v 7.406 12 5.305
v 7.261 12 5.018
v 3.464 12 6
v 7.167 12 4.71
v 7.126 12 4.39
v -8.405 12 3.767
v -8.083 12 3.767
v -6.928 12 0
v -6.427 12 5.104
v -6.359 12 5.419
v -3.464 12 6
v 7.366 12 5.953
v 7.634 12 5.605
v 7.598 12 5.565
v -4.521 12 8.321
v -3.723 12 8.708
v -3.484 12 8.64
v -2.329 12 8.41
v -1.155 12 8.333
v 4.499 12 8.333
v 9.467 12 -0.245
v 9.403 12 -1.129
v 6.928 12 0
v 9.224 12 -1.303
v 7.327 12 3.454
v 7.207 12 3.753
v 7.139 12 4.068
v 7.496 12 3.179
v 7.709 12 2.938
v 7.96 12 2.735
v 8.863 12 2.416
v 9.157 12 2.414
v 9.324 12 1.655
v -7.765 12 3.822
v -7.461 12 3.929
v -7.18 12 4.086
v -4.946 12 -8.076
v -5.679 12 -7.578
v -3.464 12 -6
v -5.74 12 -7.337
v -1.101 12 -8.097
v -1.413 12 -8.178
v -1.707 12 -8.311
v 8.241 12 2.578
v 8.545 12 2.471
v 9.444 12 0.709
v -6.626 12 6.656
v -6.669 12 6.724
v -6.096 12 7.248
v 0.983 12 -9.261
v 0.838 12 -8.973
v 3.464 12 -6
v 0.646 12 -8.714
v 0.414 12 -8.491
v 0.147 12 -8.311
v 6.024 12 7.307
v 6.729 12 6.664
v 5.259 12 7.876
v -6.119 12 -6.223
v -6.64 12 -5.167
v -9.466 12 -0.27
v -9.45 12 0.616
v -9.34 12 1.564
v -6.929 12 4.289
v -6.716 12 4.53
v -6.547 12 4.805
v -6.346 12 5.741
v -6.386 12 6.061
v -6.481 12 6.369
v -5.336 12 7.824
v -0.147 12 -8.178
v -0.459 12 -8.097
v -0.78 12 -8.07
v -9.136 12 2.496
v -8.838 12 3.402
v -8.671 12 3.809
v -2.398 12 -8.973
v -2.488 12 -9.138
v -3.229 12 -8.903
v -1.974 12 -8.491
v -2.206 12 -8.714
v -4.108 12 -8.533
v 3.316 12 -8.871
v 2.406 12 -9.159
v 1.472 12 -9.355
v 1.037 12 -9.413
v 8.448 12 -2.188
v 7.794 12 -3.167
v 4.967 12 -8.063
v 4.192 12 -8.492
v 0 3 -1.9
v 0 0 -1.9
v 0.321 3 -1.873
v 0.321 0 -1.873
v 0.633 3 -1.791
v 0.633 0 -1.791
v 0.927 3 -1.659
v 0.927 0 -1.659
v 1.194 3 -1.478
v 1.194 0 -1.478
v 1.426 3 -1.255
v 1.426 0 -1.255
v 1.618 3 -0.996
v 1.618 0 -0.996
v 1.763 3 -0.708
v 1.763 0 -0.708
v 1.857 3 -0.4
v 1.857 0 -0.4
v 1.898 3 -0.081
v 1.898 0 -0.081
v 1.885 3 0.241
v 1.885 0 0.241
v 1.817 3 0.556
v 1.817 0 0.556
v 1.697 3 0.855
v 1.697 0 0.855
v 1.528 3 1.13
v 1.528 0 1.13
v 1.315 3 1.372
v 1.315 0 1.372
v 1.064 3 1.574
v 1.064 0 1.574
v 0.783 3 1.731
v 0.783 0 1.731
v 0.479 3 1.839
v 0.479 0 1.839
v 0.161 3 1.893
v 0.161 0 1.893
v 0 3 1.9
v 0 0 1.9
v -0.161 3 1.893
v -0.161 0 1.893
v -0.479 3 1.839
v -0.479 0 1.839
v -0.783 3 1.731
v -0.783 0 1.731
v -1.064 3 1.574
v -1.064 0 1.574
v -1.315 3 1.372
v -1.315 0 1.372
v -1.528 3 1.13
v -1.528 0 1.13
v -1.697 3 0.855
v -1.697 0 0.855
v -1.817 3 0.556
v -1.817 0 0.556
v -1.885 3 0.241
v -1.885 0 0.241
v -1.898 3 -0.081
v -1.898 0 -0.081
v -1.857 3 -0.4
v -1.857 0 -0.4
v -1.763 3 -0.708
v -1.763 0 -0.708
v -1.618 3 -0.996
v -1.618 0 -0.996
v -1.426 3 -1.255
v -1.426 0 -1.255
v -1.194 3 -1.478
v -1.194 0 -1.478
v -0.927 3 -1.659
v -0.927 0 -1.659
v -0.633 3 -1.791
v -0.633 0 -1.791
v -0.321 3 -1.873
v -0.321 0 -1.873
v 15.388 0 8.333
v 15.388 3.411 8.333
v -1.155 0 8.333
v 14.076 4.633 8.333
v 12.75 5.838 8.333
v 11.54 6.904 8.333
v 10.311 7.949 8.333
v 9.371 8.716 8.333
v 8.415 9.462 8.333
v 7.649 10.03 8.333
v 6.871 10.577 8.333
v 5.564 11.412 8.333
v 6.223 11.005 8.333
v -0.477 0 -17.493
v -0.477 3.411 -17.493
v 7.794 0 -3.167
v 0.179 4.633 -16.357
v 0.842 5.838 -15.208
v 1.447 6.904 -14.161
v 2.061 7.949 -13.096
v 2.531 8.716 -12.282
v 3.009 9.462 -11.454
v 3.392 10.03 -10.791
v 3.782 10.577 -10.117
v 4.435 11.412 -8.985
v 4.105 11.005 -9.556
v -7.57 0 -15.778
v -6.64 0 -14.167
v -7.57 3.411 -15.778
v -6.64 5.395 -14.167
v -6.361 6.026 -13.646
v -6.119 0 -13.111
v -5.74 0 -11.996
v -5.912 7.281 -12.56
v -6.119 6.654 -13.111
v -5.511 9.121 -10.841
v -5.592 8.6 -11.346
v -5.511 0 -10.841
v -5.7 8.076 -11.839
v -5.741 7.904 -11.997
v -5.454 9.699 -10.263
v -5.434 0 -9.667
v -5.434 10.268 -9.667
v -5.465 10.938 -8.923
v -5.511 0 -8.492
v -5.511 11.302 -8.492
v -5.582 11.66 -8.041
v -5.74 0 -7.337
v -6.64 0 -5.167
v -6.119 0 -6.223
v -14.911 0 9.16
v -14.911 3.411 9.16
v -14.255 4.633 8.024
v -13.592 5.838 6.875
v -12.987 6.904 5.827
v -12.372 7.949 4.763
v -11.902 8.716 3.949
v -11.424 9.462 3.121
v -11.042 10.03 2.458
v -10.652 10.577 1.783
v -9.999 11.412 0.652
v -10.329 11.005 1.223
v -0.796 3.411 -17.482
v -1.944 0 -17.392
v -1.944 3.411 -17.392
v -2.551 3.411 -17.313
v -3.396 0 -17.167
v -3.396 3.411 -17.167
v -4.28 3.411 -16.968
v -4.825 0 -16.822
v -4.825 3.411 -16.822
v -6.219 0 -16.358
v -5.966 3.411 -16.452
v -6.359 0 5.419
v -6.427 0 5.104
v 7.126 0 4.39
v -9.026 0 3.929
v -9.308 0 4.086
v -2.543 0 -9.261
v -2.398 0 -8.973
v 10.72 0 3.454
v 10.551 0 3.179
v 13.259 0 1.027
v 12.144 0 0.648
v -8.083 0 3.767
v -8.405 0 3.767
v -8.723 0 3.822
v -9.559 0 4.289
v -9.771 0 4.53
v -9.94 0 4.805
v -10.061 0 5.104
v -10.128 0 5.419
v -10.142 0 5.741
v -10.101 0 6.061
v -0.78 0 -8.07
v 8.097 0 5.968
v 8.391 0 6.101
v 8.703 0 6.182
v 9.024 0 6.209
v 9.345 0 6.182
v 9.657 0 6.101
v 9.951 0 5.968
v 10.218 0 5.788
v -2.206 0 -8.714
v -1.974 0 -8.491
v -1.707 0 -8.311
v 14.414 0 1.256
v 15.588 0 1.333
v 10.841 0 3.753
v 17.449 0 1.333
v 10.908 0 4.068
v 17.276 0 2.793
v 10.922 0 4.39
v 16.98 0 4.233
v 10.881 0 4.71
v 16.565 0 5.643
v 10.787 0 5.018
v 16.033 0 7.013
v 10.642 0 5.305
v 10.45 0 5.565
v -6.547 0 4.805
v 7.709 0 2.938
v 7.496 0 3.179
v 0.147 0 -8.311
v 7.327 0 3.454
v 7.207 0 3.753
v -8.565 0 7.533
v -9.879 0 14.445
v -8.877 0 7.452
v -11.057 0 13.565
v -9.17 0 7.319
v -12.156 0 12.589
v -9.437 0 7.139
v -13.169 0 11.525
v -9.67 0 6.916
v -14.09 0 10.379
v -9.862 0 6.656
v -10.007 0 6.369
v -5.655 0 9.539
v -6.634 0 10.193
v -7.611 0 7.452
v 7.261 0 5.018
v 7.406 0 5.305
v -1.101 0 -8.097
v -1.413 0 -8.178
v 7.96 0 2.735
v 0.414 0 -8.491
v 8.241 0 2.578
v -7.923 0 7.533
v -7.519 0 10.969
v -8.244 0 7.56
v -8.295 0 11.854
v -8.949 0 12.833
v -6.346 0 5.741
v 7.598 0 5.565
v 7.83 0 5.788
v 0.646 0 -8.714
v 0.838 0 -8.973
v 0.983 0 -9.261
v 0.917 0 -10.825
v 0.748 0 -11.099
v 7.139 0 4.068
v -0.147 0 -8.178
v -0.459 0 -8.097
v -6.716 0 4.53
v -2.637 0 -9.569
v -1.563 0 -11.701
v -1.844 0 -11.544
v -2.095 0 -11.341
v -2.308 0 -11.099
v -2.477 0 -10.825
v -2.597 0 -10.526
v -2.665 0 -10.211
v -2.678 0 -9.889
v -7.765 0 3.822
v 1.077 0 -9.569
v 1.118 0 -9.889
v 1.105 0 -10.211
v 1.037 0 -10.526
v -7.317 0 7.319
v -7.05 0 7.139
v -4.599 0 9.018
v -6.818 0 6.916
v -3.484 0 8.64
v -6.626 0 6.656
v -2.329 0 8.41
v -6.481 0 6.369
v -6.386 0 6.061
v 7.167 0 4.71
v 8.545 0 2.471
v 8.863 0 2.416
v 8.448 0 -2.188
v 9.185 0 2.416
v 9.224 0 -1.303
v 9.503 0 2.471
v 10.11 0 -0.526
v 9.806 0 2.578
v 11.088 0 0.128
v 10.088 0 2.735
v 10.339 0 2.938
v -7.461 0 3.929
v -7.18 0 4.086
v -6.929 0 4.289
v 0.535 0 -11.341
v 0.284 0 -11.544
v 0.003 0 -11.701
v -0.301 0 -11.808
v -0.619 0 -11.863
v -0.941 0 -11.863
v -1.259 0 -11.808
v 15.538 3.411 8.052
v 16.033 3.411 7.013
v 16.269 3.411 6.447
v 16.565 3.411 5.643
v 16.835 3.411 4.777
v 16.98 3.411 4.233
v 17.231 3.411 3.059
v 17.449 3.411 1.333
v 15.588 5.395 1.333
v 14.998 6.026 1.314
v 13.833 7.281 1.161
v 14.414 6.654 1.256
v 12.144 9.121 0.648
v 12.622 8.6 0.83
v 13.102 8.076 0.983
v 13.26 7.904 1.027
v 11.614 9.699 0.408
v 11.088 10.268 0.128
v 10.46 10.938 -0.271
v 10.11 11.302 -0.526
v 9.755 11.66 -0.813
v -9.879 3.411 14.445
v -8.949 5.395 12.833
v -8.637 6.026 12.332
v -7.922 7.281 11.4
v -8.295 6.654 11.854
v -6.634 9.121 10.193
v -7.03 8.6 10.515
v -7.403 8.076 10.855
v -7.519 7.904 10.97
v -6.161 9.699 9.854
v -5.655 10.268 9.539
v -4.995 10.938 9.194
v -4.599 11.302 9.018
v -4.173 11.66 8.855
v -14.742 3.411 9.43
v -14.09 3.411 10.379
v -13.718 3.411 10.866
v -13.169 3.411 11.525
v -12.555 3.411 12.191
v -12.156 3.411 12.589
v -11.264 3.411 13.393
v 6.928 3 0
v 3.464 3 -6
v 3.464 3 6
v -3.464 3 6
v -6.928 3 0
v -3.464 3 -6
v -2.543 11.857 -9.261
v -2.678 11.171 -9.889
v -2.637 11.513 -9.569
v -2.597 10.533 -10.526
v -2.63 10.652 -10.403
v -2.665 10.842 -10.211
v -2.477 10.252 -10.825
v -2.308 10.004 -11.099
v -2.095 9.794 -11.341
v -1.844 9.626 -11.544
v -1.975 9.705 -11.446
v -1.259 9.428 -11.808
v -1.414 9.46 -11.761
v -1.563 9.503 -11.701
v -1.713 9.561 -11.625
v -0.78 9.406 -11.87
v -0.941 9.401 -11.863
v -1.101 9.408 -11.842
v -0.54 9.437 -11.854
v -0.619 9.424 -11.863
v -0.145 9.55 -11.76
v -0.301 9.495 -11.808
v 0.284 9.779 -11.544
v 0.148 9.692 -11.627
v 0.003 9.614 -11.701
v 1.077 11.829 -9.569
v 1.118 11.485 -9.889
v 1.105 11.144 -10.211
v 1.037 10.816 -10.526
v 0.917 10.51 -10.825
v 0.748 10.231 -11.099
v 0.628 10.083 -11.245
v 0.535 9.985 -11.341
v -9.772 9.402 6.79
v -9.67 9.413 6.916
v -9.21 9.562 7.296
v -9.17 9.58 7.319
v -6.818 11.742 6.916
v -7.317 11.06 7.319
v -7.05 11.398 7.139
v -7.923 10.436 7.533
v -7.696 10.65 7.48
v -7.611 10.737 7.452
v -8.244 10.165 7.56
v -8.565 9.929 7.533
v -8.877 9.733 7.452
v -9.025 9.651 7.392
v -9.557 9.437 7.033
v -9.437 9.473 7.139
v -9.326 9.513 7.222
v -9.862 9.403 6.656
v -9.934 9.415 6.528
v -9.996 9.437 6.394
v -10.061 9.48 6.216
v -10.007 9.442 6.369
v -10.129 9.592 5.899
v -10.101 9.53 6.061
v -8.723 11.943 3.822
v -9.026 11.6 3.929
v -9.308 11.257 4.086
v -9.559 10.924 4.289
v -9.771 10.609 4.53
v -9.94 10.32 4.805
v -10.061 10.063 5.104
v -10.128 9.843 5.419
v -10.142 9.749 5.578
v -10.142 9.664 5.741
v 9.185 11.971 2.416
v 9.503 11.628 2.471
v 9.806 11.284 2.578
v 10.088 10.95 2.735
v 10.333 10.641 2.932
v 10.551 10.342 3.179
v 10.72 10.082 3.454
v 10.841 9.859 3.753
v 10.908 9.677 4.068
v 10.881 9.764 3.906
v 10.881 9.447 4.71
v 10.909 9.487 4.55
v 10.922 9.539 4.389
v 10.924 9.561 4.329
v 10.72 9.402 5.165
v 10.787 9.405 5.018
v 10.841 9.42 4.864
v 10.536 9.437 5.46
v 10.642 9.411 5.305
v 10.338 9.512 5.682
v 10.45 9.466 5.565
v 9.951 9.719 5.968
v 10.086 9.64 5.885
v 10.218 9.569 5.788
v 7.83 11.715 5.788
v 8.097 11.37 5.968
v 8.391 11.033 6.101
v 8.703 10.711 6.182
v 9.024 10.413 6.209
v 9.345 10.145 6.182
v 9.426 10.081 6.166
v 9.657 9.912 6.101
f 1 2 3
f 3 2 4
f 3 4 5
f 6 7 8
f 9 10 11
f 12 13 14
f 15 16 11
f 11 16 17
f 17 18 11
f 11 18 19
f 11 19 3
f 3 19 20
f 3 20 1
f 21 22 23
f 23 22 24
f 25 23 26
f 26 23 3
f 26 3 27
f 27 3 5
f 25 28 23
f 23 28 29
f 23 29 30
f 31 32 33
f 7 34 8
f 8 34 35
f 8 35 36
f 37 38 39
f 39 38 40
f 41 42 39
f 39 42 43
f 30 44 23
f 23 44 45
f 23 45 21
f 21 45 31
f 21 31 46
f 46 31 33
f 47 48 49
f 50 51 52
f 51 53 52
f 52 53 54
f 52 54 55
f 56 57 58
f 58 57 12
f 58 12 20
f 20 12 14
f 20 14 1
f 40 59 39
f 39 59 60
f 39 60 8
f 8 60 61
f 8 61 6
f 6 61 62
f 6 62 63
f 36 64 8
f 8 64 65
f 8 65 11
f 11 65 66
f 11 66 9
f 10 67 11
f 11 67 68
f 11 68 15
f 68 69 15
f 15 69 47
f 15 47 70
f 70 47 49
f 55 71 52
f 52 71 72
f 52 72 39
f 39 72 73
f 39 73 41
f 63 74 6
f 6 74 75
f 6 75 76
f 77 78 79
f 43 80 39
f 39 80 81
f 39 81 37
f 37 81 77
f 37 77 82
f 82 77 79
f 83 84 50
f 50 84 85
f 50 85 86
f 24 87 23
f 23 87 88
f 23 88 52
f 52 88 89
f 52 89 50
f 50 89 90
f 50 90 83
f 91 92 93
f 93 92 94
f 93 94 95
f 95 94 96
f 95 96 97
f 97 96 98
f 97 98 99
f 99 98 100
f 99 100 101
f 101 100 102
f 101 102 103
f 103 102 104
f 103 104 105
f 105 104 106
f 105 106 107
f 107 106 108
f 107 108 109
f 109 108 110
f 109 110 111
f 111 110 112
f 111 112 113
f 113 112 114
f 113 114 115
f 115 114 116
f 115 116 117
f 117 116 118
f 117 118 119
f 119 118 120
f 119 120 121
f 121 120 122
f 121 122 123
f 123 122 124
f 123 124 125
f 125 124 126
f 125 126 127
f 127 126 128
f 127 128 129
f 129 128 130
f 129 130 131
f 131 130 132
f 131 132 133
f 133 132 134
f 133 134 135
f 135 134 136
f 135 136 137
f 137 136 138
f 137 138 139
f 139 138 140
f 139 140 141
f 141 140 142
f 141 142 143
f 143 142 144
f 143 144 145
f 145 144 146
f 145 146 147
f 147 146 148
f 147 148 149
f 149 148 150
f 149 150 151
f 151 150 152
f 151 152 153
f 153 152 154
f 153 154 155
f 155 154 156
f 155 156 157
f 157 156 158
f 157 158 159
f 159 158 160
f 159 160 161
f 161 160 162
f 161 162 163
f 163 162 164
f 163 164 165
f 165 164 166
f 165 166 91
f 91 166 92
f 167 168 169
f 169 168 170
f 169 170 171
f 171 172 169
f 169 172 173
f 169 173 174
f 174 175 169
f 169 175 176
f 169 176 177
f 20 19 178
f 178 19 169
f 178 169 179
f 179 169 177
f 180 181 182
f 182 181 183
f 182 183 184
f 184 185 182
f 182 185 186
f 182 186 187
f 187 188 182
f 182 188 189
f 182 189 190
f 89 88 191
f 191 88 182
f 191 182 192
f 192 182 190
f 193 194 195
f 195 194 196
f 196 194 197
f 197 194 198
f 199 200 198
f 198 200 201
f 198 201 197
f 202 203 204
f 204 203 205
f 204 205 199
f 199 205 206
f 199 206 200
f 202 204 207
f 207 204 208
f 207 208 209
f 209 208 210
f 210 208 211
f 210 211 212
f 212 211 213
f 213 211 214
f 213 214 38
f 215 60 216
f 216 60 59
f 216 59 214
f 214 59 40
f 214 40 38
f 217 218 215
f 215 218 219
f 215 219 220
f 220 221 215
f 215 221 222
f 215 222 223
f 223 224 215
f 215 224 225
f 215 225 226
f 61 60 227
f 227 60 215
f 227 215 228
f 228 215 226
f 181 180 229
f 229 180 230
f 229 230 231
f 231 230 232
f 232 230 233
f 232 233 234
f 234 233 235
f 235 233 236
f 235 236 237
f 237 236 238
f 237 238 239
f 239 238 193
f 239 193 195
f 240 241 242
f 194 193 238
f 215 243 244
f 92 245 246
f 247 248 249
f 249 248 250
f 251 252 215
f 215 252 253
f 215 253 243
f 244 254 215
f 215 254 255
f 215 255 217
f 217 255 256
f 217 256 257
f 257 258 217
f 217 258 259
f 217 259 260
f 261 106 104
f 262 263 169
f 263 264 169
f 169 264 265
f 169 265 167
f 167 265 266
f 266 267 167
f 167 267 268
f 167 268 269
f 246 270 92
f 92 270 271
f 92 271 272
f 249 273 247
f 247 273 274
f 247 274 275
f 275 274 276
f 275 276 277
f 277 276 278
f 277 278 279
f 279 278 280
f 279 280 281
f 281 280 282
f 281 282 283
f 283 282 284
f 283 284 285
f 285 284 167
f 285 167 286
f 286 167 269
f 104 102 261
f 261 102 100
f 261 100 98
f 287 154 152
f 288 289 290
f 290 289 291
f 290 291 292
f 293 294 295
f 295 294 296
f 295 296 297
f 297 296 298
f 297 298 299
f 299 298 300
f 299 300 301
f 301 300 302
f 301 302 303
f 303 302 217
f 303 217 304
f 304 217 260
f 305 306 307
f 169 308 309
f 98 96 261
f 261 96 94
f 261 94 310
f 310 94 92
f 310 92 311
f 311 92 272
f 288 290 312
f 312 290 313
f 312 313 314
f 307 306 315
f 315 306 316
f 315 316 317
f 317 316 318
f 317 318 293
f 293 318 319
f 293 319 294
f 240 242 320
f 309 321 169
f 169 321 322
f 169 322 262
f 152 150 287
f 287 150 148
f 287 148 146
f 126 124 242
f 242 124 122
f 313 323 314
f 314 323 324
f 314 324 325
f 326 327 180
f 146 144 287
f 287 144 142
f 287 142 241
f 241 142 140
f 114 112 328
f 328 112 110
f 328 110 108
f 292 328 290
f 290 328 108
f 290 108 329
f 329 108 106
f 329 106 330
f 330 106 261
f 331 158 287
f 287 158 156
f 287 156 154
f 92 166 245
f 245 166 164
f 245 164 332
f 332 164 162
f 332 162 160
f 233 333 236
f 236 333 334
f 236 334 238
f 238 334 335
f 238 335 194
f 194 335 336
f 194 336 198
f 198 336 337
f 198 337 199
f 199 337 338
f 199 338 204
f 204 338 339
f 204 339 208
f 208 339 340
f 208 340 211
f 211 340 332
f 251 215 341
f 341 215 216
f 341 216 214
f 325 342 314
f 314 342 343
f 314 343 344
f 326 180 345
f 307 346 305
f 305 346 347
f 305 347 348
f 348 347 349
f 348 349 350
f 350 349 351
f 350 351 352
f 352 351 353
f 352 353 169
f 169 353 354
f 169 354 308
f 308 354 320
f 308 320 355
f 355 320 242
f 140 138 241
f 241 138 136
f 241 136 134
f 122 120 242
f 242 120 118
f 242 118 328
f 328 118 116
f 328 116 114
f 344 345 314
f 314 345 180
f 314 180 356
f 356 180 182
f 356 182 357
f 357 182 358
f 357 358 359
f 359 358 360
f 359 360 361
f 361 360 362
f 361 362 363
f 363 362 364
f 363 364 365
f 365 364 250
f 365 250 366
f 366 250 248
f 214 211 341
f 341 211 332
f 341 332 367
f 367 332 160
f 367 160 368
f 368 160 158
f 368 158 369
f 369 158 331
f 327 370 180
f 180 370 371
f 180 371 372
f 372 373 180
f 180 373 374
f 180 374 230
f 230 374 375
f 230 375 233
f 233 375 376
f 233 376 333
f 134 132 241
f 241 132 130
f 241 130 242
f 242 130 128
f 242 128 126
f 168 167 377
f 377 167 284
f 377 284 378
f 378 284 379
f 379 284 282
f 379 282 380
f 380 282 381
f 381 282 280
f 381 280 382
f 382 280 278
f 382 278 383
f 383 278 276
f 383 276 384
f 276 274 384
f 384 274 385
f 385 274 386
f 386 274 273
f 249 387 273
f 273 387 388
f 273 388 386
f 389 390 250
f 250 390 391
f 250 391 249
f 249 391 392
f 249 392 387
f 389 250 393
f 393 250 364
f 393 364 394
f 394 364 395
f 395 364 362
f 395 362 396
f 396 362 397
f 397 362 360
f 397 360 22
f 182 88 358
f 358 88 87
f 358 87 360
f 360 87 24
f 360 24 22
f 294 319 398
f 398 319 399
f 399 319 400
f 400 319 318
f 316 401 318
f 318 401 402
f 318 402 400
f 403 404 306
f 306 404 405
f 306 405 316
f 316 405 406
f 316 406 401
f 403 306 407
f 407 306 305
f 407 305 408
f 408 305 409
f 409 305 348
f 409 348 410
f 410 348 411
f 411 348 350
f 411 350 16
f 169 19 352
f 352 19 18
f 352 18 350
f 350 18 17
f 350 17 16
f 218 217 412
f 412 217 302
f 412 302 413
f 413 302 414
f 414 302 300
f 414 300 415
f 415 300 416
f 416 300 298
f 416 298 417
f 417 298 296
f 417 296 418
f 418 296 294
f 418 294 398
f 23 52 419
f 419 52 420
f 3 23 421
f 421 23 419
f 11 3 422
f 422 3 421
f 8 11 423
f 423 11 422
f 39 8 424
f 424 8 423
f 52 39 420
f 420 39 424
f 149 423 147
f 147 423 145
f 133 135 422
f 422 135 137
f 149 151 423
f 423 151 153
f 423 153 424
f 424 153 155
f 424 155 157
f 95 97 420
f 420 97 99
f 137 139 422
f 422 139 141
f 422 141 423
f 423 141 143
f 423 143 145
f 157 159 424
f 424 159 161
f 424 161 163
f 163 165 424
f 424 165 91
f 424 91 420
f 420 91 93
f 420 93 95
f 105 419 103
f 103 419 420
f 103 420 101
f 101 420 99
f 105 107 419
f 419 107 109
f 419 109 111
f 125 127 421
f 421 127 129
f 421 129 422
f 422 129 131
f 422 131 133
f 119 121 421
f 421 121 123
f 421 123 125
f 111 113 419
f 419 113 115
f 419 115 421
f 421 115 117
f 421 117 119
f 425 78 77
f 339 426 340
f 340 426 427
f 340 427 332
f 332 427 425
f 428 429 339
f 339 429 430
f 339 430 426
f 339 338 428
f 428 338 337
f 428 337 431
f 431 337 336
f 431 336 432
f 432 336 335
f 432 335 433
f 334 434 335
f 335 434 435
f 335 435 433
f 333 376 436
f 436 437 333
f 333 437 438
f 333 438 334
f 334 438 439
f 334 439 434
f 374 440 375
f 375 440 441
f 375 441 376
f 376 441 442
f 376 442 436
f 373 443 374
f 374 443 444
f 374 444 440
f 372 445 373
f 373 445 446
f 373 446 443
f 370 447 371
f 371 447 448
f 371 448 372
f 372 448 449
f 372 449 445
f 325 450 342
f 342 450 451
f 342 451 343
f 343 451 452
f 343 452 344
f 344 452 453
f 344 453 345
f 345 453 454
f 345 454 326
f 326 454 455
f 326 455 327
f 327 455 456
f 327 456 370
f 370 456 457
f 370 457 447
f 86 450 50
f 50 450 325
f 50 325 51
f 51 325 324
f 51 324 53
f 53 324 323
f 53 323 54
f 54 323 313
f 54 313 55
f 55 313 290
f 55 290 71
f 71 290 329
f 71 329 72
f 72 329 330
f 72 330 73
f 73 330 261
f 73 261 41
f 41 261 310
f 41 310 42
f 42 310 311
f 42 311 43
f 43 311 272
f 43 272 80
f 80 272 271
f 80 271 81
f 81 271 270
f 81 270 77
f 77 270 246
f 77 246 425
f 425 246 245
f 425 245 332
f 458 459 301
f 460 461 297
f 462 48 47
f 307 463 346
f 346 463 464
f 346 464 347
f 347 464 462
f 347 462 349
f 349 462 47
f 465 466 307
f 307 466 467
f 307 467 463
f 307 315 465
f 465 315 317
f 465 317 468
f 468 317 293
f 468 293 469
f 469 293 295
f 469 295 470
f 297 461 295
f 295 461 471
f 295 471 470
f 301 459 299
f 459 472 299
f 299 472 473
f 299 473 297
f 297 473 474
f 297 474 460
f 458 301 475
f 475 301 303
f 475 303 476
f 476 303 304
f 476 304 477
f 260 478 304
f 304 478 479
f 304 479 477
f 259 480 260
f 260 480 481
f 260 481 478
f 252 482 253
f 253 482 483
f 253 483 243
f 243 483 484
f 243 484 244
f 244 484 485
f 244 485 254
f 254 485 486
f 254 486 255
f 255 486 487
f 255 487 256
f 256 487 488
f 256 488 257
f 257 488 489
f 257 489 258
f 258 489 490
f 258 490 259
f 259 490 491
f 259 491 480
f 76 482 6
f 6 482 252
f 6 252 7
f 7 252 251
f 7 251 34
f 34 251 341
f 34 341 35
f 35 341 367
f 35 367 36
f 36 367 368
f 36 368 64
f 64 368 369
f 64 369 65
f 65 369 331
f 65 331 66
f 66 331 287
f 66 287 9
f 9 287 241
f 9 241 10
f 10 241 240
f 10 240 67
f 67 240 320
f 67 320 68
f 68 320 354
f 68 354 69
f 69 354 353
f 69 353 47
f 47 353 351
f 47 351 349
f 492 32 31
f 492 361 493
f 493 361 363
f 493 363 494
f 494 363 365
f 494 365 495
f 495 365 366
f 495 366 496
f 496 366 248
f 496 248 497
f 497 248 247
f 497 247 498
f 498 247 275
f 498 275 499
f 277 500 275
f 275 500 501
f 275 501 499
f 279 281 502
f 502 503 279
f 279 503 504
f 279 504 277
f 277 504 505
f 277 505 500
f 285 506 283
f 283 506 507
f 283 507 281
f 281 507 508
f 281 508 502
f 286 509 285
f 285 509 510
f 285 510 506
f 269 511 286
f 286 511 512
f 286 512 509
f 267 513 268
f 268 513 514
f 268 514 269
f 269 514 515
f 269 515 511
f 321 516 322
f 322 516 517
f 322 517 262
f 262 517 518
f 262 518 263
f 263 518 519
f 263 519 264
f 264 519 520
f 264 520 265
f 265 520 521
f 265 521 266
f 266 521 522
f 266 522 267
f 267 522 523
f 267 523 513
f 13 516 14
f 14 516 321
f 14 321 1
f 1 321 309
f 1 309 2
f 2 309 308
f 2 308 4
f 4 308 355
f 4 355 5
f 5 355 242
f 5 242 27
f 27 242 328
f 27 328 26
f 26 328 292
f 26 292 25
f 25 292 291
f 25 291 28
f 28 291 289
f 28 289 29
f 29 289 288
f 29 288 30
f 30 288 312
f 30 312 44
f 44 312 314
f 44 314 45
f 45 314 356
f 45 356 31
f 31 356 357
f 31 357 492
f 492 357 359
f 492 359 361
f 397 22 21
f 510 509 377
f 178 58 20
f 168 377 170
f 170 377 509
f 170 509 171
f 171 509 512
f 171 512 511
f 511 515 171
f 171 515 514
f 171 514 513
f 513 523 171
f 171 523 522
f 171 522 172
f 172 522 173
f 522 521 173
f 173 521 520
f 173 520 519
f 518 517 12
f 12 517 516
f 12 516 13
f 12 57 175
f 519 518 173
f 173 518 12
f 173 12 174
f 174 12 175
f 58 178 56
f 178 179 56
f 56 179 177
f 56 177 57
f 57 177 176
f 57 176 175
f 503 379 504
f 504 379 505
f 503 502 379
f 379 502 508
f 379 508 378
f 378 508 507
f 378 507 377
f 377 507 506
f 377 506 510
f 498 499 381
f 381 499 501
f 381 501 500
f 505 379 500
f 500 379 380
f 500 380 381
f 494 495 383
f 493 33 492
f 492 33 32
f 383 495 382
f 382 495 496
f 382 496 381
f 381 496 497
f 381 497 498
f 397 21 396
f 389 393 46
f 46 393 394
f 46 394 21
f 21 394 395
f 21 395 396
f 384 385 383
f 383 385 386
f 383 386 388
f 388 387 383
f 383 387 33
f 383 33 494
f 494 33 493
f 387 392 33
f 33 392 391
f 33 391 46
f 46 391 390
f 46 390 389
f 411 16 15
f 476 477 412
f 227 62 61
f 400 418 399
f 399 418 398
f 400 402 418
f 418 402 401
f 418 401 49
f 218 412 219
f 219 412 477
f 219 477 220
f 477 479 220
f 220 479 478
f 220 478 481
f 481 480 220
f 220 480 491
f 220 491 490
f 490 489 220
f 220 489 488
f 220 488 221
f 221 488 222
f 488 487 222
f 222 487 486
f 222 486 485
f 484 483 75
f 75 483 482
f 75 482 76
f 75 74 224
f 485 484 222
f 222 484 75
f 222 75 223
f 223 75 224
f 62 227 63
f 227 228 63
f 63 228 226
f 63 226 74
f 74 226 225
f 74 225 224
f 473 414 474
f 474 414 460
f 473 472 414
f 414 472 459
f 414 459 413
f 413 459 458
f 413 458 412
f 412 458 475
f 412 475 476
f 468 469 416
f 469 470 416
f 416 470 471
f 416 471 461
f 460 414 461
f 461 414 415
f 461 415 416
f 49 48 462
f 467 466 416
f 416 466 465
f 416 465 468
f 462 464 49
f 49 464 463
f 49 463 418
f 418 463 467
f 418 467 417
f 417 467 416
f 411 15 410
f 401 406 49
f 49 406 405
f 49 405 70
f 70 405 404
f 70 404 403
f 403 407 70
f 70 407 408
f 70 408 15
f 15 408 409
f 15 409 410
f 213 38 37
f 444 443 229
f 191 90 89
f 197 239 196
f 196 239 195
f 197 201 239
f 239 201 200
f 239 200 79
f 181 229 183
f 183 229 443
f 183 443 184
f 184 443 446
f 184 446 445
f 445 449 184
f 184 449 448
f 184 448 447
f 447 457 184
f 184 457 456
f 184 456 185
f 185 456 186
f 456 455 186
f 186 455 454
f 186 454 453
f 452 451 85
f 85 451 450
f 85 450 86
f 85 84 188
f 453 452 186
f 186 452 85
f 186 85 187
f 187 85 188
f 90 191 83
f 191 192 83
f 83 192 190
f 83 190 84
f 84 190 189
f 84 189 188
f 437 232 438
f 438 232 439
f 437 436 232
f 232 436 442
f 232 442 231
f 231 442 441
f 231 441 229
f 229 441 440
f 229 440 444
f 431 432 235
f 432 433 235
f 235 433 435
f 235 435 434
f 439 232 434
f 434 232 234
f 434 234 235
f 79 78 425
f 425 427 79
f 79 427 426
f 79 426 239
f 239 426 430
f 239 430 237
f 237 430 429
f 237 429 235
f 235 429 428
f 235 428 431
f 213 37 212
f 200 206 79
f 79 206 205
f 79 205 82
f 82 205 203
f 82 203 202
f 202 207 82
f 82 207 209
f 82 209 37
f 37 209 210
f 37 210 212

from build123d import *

# Parameters (mm, degrees)
SKETCH1_R           = 1.9
BOSS_EXTRUDE1_DEPTH = 12
CIRPATTERN1_COUNT   = 3
CUT_EXTRUDE1_DEPTH  = 9
SKETCH4_R           = 1.9
CUT_EXTRUDE2_DEPTH  = 12
CIRPATTERN2_COUNT   = 3


with BuildPart() as part:
    # Sketch1 → Boss-Extrude1 (new body)
    with BuildSketch(Plane(origin=(0, 0, 0), x_dir=(1, 0, 0), z_dir=(0, 1, 0))):
        with BuildLine():
            ThreePointArc((-0.477365515, 17.493487993), (-4.114019559, 17.009551525), (-7.569865672, 15.778058617))
            Line((-7.569865672, 15.778058617), (-6.639528096, 14.166666667))
            ThreePointArc((-6.639528096, 14.166666667), (-5.43375673, 9.666666667), (-6.639528096, 5.166666667))
            Line((-6.639528096, 5.166666667), (-14.43375673, -8.333333333))
            Line((-14.43375673, -8.333333333), (14.43375673, -8.333333333))
            Line((14.43375673, -8.333333333), (-0.477365515, 17.493487993))
        make_face()
        with Locations(Location((0, 0, 0), (0, 0, 270))):
            Circle(SKETCH1_R, mode=Mode.SUBTRACT)
    boss_extrude1 = extrude(amount=BOSS_EXTRUDE1_DEPTH)

    # CirPattern1: Boss-Extrude1 ×3 about axis
    cirpattern1_axis = Axis((0, 0, 0), (0, 1, 0))
    for i in range(1, CIRPATTERN1_COUNT):
        add(boss_extrude1.rotate(cirpattern1_axis, i * 360 / CIRPATTERN1_COUNT))

    # Sketch3 → Cut-Extrude1 (cut)
    with BuildSketch(Plane(origin=(0, 12, 0), x_dir=(1, 0, 0), z_dir=(0, 1, 0))):
        Polygon((3.464101615, 6), (-3.464101615, 6), (-6.92820323, 0), (-3.464101615, -6), (3.464101615, -6), (6.92820323, 0), align=None)
    extrude(amount=-CUT_EXTRUDE1_DEPTH, mode=Mode.SUBTRACT)

    # Sketch4 → Cut-Extrude2 (cut)
    with BuildSketch(Plane(origin=(0, 12, 0), x_dir=(1, 0, 0), z_dir=(0, 1, 0))):
        with Locations(Location((-0.780031957, 9.96953109, 0), (0, 0, 270))):
            Circle(SKETCH4_R)
    cut_extrude2 = extrude(amount=-CUT_EXTRUDE2_DEPTH, mode=Mode.SUBTRACT)

    # CirPattern2: Cut-Extrude2 ×3 about axis
    cirpattern2_axis = Axis((0, 0, 0), (0, 1, 0))
    for i in range(1, CIRPATTERN2_COUNT):
        add(cut_extrude2.rotate(cirpattern2_axis, i * 360 / CIRPATTERN2_COUNT), mode=Mode.SUBTRACT)

    # Sketch5 → Cut-Revolve2 (revolve, cut)
    with BuildSketch(Plane.XY):
        Polygon((17.884587384, 3), (9.470286093, 12), (17.884587384, 12), align=None)
    revolve(axis=Axis((0, 0, 0), (0, 1, 0)), mode=Mode.SUBTRACT)


solid = part.part
